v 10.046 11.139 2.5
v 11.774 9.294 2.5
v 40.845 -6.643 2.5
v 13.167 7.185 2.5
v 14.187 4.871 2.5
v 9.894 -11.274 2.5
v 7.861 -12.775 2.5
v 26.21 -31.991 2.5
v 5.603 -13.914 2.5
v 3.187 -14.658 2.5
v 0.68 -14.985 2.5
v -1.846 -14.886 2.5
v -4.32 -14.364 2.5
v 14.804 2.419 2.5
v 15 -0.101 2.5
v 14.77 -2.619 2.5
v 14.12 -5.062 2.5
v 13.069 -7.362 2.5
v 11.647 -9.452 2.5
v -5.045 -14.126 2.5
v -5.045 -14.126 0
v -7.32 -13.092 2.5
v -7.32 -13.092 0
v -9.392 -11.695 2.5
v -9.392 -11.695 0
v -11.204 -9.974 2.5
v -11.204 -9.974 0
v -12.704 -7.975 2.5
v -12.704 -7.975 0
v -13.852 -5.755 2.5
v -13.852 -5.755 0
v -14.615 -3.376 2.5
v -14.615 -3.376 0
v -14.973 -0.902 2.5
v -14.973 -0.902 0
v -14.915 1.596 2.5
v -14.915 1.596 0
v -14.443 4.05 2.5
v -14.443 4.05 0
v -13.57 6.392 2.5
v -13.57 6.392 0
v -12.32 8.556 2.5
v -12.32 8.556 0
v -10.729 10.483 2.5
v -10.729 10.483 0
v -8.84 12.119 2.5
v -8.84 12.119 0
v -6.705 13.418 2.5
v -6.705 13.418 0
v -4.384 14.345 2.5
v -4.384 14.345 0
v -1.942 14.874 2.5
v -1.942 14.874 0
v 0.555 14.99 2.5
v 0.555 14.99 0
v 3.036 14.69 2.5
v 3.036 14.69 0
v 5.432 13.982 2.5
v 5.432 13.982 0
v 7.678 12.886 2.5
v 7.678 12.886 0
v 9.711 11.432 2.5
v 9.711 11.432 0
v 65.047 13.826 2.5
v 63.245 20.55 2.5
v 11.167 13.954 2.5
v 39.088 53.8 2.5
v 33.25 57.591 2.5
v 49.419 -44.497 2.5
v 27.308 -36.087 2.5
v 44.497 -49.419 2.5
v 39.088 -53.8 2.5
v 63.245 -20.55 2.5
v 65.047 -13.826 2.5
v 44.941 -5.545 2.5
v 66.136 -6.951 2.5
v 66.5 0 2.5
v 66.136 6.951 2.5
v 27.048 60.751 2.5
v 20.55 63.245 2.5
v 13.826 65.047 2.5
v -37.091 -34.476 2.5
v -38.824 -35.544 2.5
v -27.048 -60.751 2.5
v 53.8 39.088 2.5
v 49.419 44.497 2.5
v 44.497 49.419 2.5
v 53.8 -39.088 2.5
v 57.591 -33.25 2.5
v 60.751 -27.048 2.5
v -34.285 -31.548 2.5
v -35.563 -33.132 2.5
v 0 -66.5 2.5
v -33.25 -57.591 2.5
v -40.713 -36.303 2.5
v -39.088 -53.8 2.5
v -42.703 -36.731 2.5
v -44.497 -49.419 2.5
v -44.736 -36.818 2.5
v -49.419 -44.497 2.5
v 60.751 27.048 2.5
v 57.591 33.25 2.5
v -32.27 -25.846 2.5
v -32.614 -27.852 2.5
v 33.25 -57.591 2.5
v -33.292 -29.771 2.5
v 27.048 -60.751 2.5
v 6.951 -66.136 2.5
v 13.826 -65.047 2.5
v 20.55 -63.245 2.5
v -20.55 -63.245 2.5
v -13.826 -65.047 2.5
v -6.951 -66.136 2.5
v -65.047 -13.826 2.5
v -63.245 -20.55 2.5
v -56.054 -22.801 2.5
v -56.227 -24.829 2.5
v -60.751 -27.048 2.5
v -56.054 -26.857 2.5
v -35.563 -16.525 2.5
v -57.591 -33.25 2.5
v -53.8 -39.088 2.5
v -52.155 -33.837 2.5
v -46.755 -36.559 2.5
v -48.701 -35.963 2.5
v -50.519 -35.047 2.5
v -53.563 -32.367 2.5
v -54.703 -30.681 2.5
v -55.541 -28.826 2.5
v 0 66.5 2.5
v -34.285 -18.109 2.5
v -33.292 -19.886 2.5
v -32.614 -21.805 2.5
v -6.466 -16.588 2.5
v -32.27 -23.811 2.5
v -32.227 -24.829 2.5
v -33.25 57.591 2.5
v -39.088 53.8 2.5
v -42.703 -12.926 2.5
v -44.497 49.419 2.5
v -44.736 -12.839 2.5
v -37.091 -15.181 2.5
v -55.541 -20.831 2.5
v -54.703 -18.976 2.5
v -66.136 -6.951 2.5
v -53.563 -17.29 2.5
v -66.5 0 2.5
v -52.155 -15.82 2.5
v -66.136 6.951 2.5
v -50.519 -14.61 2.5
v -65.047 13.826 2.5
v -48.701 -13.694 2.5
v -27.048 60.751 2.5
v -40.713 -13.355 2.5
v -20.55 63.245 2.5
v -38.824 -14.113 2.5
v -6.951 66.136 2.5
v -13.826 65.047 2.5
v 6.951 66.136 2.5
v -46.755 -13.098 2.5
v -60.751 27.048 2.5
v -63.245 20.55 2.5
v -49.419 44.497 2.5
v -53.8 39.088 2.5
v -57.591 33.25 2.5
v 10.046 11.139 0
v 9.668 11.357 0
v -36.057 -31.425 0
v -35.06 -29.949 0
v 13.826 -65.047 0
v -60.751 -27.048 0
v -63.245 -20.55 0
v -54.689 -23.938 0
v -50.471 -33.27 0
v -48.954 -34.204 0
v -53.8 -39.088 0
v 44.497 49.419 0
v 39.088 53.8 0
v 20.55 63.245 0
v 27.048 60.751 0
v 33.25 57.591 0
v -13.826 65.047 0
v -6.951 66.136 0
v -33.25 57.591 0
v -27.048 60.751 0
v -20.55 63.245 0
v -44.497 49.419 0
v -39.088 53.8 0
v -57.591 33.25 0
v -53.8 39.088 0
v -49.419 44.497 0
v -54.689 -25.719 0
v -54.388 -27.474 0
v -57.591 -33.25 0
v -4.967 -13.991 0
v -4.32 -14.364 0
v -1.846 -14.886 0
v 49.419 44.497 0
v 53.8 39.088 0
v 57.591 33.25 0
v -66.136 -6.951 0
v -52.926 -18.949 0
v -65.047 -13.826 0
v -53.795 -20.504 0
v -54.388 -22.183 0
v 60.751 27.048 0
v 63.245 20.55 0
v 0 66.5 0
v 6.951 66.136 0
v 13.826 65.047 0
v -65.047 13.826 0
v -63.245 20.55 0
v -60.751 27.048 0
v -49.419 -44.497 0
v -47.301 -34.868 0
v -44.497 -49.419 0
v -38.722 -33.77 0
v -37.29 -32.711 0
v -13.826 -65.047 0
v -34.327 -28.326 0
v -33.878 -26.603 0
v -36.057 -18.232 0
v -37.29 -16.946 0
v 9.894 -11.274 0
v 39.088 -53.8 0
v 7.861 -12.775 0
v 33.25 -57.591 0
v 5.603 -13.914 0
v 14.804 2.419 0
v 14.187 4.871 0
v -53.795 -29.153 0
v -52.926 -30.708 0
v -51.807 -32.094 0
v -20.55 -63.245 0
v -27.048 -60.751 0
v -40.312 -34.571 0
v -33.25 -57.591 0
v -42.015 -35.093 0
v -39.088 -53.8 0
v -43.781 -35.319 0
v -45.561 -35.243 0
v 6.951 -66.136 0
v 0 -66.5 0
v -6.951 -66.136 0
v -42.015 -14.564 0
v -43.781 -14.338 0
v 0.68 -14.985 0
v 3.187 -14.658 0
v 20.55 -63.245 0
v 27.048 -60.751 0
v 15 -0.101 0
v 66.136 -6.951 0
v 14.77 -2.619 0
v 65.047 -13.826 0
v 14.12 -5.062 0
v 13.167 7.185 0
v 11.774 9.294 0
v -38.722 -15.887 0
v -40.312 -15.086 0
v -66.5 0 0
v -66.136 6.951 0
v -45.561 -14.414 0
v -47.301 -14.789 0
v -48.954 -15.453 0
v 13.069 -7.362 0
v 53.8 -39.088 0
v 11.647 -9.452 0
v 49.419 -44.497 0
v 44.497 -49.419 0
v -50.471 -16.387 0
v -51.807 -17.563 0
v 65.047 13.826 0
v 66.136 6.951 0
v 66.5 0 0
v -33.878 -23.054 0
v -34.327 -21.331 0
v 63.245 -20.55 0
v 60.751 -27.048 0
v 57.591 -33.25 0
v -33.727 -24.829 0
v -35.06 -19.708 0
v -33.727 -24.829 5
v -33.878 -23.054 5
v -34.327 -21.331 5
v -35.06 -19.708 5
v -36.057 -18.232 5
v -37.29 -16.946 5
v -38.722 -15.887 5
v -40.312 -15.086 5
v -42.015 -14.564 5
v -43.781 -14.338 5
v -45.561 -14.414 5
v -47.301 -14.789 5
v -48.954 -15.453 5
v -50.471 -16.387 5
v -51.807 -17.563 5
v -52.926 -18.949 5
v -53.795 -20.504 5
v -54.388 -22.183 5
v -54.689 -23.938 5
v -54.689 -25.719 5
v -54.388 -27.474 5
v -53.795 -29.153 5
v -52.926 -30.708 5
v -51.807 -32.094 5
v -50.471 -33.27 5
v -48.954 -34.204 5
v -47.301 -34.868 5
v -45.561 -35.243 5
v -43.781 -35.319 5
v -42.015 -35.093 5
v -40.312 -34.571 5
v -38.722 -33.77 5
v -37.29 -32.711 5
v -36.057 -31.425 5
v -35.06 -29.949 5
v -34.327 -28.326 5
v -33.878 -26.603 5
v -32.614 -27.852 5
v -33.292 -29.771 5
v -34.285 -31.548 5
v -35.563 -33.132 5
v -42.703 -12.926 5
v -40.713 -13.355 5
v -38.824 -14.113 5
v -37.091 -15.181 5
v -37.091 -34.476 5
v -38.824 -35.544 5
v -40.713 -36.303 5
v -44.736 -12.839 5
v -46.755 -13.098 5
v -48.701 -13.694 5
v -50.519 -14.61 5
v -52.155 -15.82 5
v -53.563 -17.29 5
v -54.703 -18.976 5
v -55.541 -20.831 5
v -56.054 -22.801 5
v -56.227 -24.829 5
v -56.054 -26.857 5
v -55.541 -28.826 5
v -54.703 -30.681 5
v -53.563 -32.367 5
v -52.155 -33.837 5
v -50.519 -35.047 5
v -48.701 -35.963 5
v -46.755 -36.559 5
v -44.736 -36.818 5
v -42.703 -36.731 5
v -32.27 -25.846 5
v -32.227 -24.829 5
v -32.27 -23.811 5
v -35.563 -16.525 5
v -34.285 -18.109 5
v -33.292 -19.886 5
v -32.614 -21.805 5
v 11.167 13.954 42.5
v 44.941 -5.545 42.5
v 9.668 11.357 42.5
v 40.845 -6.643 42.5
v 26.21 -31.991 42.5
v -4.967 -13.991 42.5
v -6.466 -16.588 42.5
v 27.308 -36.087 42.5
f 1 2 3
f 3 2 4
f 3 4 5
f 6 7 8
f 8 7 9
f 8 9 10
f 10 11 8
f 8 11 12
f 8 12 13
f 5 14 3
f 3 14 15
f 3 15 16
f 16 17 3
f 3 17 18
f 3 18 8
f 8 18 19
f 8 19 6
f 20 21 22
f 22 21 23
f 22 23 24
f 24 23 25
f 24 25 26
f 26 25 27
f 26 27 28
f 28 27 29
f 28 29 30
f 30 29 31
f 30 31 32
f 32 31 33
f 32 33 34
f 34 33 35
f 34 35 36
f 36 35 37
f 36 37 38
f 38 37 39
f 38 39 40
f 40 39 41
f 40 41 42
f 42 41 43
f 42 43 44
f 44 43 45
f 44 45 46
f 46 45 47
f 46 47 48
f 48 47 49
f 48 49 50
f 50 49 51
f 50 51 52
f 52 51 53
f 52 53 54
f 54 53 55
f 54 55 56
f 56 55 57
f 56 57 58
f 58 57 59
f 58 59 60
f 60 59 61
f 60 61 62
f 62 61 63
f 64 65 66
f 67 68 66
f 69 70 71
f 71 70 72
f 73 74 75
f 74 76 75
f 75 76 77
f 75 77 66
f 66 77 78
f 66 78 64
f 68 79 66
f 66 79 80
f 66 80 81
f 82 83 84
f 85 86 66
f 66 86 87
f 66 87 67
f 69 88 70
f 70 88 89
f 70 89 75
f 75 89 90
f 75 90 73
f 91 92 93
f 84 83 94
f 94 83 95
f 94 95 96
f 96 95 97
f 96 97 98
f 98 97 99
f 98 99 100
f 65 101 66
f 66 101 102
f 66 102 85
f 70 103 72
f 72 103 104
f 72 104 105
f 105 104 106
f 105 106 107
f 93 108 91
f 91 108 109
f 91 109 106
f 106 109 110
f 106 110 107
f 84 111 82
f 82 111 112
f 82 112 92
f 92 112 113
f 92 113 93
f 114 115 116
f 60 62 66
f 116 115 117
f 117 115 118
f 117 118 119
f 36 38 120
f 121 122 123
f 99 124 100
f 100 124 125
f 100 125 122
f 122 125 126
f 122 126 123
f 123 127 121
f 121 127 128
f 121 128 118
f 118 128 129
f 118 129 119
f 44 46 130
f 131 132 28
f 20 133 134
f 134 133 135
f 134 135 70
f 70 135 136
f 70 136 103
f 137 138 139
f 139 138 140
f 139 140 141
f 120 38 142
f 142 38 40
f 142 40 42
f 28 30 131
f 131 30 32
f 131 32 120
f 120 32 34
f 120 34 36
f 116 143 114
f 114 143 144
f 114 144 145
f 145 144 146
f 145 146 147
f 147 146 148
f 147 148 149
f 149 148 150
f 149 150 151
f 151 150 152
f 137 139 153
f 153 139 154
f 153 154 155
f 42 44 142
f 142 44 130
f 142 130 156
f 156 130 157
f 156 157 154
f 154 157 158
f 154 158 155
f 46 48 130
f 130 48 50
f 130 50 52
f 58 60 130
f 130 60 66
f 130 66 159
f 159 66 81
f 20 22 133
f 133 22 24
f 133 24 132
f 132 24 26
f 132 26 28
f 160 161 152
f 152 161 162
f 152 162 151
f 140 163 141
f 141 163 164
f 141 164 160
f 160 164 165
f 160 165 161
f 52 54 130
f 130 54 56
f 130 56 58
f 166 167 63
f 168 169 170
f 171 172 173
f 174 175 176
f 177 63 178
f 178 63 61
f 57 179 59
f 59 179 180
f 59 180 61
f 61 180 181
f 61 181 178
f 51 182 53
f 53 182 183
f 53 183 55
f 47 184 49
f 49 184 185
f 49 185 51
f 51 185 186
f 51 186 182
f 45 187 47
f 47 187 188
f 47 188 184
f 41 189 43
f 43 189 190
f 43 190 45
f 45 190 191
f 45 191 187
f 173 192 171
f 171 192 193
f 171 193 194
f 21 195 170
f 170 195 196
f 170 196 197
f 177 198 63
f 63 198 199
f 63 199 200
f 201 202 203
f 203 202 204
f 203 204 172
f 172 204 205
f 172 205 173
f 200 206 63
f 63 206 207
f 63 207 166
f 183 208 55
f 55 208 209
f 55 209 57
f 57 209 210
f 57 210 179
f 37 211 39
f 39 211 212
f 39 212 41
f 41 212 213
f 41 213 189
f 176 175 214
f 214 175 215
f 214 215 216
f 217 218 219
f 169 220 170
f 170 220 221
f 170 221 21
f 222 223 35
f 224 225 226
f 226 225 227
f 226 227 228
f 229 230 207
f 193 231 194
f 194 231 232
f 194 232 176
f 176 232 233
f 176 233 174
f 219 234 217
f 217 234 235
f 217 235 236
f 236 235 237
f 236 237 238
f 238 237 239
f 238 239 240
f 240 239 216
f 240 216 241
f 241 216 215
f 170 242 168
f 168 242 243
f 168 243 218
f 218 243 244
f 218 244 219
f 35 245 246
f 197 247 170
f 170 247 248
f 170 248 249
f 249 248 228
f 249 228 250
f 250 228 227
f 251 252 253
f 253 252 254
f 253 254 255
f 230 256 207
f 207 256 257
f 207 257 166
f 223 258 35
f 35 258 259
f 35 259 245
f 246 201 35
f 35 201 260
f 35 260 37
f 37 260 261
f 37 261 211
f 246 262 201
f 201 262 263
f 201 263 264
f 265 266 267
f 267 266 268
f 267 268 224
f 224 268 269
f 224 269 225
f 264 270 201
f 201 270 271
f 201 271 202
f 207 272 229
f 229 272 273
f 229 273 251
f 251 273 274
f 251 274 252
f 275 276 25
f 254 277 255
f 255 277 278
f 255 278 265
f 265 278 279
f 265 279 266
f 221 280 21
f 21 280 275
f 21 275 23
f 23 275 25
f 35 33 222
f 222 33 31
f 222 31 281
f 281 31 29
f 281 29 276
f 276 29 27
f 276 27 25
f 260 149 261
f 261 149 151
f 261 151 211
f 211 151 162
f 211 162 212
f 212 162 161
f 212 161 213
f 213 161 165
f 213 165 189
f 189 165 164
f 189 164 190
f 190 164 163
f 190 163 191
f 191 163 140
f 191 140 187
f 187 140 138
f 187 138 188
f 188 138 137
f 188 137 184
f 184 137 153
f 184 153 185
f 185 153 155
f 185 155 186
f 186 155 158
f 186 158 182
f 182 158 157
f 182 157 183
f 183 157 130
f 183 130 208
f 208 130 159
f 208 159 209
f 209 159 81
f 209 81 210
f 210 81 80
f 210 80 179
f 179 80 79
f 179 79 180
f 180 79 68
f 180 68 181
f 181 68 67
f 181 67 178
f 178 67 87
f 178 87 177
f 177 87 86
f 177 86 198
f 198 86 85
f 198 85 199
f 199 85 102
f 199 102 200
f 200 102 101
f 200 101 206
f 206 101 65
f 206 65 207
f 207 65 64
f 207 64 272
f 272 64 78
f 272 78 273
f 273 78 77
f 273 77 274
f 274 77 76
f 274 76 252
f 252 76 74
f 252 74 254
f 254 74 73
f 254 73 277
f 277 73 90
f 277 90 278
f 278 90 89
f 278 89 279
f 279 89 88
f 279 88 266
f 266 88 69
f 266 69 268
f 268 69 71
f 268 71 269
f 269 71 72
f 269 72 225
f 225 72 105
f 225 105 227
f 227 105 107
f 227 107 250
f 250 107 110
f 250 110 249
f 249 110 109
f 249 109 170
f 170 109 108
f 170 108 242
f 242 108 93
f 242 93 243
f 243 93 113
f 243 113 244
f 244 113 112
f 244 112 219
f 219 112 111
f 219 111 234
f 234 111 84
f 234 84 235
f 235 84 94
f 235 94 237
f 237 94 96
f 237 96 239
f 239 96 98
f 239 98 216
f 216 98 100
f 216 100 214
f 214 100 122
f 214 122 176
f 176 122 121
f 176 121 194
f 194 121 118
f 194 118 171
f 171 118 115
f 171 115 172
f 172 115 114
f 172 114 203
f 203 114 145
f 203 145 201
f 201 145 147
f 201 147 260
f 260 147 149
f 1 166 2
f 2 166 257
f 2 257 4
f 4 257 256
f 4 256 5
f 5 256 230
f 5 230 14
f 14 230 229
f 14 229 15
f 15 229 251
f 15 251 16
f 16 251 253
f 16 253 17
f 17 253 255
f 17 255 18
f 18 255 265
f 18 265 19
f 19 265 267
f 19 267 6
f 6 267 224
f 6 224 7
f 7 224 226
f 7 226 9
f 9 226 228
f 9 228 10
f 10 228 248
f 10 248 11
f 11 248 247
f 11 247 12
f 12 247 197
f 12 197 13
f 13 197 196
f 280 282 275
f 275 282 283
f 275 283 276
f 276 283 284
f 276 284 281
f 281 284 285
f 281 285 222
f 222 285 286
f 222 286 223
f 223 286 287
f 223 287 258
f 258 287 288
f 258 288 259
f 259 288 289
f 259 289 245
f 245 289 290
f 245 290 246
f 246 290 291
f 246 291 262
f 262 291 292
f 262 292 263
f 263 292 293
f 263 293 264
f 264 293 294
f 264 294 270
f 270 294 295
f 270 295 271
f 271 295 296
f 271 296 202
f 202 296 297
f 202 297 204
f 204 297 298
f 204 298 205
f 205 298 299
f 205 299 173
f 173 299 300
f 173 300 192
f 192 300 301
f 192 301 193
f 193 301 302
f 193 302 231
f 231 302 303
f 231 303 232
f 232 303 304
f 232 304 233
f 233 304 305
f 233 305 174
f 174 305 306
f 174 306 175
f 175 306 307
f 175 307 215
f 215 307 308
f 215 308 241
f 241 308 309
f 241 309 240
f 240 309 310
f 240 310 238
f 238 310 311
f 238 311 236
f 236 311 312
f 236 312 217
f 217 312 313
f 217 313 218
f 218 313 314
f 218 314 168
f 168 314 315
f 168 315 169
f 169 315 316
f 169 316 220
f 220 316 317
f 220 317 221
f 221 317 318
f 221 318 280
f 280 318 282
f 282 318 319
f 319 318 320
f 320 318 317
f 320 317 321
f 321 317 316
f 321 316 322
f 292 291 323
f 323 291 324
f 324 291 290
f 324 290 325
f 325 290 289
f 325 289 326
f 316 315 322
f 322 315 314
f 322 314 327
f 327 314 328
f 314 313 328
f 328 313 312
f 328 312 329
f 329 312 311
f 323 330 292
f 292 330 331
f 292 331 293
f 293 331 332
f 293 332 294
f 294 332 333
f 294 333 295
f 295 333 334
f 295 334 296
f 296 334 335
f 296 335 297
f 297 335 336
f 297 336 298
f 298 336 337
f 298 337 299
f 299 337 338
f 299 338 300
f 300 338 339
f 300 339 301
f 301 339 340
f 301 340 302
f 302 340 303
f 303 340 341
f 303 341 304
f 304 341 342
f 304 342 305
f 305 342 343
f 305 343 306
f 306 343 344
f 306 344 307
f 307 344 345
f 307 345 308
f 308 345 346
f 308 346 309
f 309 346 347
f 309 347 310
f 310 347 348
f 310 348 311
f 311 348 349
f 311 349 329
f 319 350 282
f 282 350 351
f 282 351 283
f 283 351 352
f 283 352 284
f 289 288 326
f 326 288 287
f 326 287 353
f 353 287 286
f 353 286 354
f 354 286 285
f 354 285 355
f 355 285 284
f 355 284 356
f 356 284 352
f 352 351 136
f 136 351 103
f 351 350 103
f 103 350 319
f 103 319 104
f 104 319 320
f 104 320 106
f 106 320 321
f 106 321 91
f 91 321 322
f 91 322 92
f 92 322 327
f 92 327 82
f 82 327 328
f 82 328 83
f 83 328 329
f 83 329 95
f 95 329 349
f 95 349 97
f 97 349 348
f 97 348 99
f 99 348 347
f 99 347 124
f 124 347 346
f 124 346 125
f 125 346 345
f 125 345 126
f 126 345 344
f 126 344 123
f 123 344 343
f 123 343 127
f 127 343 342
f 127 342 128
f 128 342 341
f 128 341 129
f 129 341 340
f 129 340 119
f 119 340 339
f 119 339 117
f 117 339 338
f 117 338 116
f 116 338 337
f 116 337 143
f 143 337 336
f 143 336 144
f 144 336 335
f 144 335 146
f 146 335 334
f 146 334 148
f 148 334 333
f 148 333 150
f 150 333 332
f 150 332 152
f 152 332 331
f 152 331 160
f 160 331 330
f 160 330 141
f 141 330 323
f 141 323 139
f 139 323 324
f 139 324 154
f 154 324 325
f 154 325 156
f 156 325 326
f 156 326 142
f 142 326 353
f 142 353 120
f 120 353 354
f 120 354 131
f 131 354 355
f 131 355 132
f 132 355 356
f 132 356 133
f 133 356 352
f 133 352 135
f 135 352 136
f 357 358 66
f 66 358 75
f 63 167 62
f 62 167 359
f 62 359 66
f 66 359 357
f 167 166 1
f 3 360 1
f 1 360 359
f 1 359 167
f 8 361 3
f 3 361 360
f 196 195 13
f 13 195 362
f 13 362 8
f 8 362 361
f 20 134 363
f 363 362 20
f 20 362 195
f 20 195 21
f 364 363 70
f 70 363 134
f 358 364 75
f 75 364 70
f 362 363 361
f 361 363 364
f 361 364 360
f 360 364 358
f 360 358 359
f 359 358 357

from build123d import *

# Parameters (mm, degrees)
SKETCH1_R           = 66.5
SKETCH1_R_2         = 15
BOSS_EXTRUDE1_DEPTH = 2.5
SKETCH3_R           = 10.5
CUT_EXTRUDE1_DEPTH  = 13.5
BOSS_EXTRUDE2_START = 2.5
SKETCH3_3_R         = 12
SKETCH3_3_R_2       = 10.5
BOSS_EXTRUDE2_DEPTH = 2.5
EXTRUDE_THIN1_DEPTH = 42.5


with BuildPart() as part:
    # Sketch1 → Boss-Extrude1 (new body)
    with BuildSketch(Plane.XY):
        Circle(SKETCH1_R)
        Circle(SKETCH1_R_2, mode=Mode.SUBTRACT)
    extrude(amount=BOSS_EXTRUDE1_DEPTH)

    # Sketch3 → Cut-Extrude1 (cut)
    with BuildSketch(Plane(origin=(-7.303339128, 6.698734651, 2.5), x_dir=(1, 0, 0), z_dir=(0, 0, 1))):
        with Locations((-36.92351869, -31.527257763)):
            Circle(SKETCH3_R)
    extrude(amount=-CUT_EXTRUDE1_DEPTH, mode=Mode.SUBTRACT)

    # Sketch3<3> → Boss-Extrude2 (add)
    with BuildSketch(Plane(origin=(-7.303339128, 6.698734651, 2.5), x_dir=(1, 0, 0), z_dir=(0, 0, 1)).offset(BOSS_EXTRUDE2_START)):
        with Locations((-36.92351869, -31.527257763)):
            Circle(SKETCH3_3_R)
        with Locations((-36.92351869, -31.527257763)):
            Circle(SKETCH3_3_R_2, mode=Mode.SUBTRACT)
    extrude(amount=-BOSS_EXTRUDE2_DEPTH)

    # Sketch13 → Extrude-Thin1 (add)
    with BuildSketch(Plane.XY):
        Polygon((-4.966956498, -13.990954189), (26.209958039, -31.990954189), (33.509958039, -19.346983294), (40.844851528, -6.642575102), (9.667936992, 11.357424898), (11.167336992, 13.954461879), (44.941288509, -5.544938121), (36.106995019, -20.846383294), (27.307595019, -36.08739117), (-6.466356498, -16.58799117), align=None)
    extrude(amount=EXTRUDE_THIN1_DEPTH)


solid = part.part
